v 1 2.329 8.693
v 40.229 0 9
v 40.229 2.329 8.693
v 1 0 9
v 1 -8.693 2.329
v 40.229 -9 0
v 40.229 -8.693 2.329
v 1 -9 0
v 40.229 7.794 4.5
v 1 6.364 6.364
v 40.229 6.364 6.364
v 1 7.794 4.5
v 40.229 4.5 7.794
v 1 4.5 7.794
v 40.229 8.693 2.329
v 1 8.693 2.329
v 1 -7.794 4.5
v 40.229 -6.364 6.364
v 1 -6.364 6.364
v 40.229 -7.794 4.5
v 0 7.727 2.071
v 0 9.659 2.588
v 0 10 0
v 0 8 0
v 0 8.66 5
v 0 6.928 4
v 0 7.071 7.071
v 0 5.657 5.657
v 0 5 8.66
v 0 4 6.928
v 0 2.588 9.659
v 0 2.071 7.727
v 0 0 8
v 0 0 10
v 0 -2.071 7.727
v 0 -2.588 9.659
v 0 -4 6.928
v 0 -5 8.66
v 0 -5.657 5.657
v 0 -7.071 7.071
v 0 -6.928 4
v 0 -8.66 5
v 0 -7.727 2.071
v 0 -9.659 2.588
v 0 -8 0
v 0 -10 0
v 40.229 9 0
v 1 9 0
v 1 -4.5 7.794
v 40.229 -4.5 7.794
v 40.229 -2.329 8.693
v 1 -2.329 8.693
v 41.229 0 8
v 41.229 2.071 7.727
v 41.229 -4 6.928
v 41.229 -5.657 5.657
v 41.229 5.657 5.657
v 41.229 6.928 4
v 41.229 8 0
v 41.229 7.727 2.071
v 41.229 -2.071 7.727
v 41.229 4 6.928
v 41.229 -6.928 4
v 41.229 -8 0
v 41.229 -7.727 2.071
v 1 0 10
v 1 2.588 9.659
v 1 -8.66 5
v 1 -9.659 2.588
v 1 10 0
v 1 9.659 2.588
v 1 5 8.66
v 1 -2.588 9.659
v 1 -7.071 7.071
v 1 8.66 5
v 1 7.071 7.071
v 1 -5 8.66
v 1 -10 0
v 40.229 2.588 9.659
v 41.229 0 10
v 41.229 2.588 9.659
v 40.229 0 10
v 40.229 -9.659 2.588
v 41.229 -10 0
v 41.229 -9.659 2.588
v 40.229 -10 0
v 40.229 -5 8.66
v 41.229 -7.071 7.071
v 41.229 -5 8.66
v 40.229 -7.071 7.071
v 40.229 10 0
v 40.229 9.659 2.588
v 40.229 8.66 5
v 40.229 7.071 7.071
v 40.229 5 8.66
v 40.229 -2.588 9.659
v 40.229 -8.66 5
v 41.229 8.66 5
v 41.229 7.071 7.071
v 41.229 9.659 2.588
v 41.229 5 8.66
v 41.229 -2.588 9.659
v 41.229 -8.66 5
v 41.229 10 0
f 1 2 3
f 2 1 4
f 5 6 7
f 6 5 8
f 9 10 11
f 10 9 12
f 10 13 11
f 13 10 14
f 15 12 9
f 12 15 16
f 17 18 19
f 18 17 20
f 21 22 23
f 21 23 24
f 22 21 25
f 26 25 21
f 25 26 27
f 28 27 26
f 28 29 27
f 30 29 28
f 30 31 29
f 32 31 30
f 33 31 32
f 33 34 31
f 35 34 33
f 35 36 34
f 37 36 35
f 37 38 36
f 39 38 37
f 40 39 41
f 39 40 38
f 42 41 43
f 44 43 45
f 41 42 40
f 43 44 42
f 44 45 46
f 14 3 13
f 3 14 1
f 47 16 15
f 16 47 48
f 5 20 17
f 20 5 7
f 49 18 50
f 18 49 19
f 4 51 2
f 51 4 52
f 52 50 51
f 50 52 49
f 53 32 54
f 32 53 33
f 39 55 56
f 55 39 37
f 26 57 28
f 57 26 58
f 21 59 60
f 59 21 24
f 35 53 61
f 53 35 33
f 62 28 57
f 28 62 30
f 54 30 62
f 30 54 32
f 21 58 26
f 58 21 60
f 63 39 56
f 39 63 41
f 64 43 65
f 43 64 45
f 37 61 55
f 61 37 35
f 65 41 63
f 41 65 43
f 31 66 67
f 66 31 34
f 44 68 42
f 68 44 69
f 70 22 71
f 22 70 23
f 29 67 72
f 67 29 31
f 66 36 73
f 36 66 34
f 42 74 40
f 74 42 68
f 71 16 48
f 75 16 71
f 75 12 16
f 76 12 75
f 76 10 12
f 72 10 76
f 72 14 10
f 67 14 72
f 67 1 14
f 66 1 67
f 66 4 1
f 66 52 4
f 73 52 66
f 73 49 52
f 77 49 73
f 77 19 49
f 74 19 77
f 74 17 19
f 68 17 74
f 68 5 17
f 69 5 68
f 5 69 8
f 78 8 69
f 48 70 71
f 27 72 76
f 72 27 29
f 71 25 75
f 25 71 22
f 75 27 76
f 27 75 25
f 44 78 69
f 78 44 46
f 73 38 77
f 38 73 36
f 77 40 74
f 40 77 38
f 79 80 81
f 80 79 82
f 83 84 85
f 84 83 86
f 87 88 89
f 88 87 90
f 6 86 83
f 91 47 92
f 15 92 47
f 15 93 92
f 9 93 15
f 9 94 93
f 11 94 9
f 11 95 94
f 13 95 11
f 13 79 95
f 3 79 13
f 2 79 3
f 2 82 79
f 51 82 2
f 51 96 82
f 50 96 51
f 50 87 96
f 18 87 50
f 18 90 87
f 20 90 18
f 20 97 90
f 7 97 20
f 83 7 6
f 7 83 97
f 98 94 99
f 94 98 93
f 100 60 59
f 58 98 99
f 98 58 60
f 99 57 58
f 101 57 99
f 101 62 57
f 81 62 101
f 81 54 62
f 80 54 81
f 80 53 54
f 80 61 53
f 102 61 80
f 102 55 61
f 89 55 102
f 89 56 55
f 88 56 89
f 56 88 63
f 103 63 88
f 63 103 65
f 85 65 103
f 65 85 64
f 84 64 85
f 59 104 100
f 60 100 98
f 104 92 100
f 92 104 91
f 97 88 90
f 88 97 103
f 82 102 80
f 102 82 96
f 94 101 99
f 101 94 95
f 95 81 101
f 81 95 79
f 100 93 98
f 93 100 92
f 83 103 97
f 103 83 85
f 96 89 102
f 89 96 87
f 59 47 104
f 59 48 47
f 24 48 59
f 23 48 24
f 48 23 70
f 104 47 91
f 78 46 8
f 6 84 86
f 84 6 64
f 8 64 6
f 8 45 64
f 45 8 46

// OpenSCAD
// file: ../build_environments.scad
// build_environments.scad: modules to build level sections
//

module pool(diameter=10.0, wall_height=2.0, step_width=3.0, connections=[])
{
    difference() {
        union() {
        difference() {
            cylinder(h=0.5,r1=diameter+step_width,r2=diameter+step_width,$fn=48);
            translate([0,0,-0.1])
                cylinder(h=0.7,r1=diameter,r2=diameter,$fn=48);
        }
        difference() {
            cylinder(h=wall_height,r1=diameter+step_width+1.0,r2=diameter+step_width+1.0,$fn=48);
            translate([0,0,-0.1])
                cylinder(h=wall_height+0.2,r1=diameter+step_width,r2=diameter+step_width,$fn=48);
        }
        }
    
        for (c = connections)
        {
            rotate([0,90,0]) {
                angle = atan2(c[1],c[0]);
                rotate([-angle,0,0]) {
                    cylinder(h=diameter+5.0,r1=c[2],r2=c[2],$fn=48);
                }
            }
        }
    }
}

module straight(length=10.0, width=2.0, dy1=0.0, dy2=0.0, dz=0.0)
{
    dims = [0, 0, 0, 0, 0, (dz/length)];
    matrix = [
        [ 1, dims[0], dims[1], 0 ],
        [ dims[2], 1, dims[4], 0 ],
        [ dims[5], dims[3], 1, 0 ],
        [ 0, 0, 0, 1 ]
    ];
    multmatrix(matrix)
    difference() {
        translate([dy1,0,0])
        union() {
            rotate([0,90,0]) {
                difference() {
                    cylinder(h=(length-dy1-dy2),r1=width+1.0,r2=width+1.0,$fn=24);
                    translate([0,0,-0.1])
                        cylinder(h=(length-dy1-dy2+0.2),r1=width,r2=width,$fn=24);
                }
                difference() {
                    cylinder(h=1.0,r1=width+2.0,r2=width+2.0,$fn=24);
                    translate([0,0,-0.1])
                        cylinder(h=1.2,r1=width,r2=width,$fn=24);
                }
                translate([0,0,(length-dy1-dy2)-1.0]) {
                    difference() {
                        cylinder(h=1.0,r1=width+2.0,r2=width+2.0,$fn=24);
                        translate([0,0,-0.1])
                            cylinder(h=1.2,r1=width,r2=width,$fn=24);
                    }
                }
            }
        }
        translate([0,0,-(2*width+4.0)/2])
            cube([3*length,3*length,2*width+4.0],center=true);
    }
}

module curve(p0=[0,0], center=[0,0], dir=1, angle=0.0, width=2.0)
{
    radius = sqrt((p0[0]-center[0])*(p0[0]-center[0]) + (p0[1]-center[1])*(p0[1]-center[1]));
    if (dir == 0) {
        difference() {
            rotate([0,0,-90])
            difference() {
                rotate_extrude(angle = angle, convexity = 10, $fn=32)
                    translate([radius, 0, 0])
                        circle(r = width+1.0,$fn=24);
                rotate([0,0,-1.0])
                    rotate_extrude(angle = angle+2.0, convexity = 10, $fn=32)
                        translate([radius, 0, 0])
                            circle(r = width,$fn=24);
            }
            translate([0,0,-(2*width+4.0)/2])
                cube([5*radius,5*radius,2*width+4.0],center=true);
        }
    }
    else {
        difference() {
            rotate([0,0,90])
            difference() {
                rotate_extrude(angle = -angle, convexity = 10, $fn=32)
                    translate([radius, 0, 0])
                        circle(r = width+1.0,$fn=24);
                rotate([0,0,1.0])
                    rotate_extrude(angle = -angle-2.0, convexity = 10, $fn=32)
                        translate([radius, 0, 0])
                            circle(r = width,$fn=24);
            }
            translate([0,0,-(2*width+4.0)/2])
                cube([5*radius,5*radius,2*width+4.0],center=true);
        }
    }

}

// test pool
//pool(diameter=12.0000, wall_height=3.0000, step_width=3.0000, connections=[[0.0000,-26.0000,2.0000], [23.6074,0.0000,2.0000]]);

// test straight, slope
//straight(length=26.0000, width=2.0000, dy1=11.8322, dy2=6.7082, dz=0.0000);
//straight(length=29.1549, width=12.0000, dy1=0.0000, dy2=0.0000, dz=-15.0000);

// test curve
//curve(p0=[23.6074, 0.0000], center=[23.6074, 5.0000], dir=0, angle=60.1011, width=2.0000);
//curve(p0=[33.6426, 12.4219], center=[37.9771, 9.9295], dir=1, angle=120.4627, width=2.0000);
// main file
use <../build_environments.scad>;
straight(length=41.2291, width=8.0000, dy1=0.0000, dy2=0.0000, dz=0.0000);
